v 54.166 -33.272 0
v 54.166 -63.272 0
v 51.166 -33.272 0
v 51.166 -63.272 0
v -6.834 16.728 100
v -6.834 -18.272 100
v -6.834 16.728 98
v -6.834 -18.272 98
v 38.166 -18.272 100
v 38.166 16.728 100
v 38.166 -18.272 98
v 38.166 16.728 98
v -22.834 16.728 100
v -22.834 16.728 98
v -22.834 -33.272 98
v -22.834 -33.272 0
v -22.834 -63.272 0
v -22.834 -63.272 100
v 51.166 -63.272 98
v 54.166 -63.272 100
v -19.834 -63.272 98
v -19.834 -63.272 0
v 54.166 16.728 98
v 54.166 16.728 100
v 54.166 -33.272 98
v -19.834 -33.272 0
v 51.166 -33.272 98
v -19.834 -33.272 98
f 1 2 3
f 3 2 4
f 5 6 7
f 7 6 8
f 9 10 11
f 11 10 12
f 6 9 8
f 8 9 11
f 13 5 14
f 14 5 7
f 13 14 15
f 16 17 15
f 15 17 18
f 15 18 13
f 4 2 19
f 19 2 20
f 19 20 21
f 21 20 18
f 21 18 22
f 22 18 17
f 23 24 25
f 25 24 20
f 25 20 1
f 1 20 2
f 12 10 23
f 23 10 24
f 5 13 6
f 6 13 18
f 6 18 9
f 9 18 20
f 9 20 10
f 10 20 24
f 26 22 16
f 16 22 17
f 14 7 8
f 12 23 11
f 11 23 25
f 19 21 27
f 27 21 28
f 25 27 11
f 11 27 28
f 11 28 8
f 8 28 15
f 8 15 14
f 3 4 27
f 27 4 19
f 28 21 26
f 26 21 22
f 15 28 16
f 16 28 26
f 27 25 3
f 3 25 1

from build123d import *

# Parameters (mm, degrees)
SKETCH_1_W          = 77
SKETCH_1_H          = 80
EXTRUDE_1_DEPTH     = 100
SKETCH_2_W          = 45
SKETCH_2_H          = 35
CUT_EXTRUDE_1_DEPTH = 100
SKETCH_3_W          = 71
SKETCH_3_H          = 80
CUT_EXTRUDE_2_DEPTH = 98
SKETCH_5_W          = 98
SKETCH_5_H          = 50
CUT_EXTRUDE_3_DEPTH = 98


with BuildPart() as part:
    # 草图1 → 凸台-拉伸1 (new body)
    with BuildSketch(Plane.XY):
        with Locations((15.665517241, -23.272413793)):
            Rectangle(SKETCH_1_W, SKETCH_1_H)
    extrude(amount=EXTRUDE_1_DEPTH)

    # 草图2 → 切除-拉伸1 (cut)
    with BuildSketch(Plane.XY.offset(100)):
        with Locations((15.665517241, -0.772413793)):
            Rectangle(SKETCH_2_W, SKETCH_2_H)
    extrude(amount=-CUT_EXTRUDE_1_DEPTH, mode=Mode.SUBTRACT)

    # 草图3 → 切除-拉伸2 (cut)
    with BuildSketch(Plane(origin=(0, 0, 0), x_dir=(-1, 0, 0), z_dir=(0, 0, -1))):
        with Locations((-15.665517241, -23.272413793)):
            Rectangle(SKETCH_3_W, SKETCH_3_H)
    extrude(amount=-CUT_EXTRUDE_2_DEPTH, mode=Mode.SUBTRACT)

    # 草图5 → 切除-拉伸3 (cut)
    with BuildSketch(Plane.ZY.offset(22.834482759)):
        with Locations((49, -8.272413793)):
            Rectangle(SKETCH_5_W, SKETCH_5_H)
    extrude(amount=-CUT_EXTRUDE_3_DEPTH, mode=Mode.SUBTRACT)


solid = part.part
